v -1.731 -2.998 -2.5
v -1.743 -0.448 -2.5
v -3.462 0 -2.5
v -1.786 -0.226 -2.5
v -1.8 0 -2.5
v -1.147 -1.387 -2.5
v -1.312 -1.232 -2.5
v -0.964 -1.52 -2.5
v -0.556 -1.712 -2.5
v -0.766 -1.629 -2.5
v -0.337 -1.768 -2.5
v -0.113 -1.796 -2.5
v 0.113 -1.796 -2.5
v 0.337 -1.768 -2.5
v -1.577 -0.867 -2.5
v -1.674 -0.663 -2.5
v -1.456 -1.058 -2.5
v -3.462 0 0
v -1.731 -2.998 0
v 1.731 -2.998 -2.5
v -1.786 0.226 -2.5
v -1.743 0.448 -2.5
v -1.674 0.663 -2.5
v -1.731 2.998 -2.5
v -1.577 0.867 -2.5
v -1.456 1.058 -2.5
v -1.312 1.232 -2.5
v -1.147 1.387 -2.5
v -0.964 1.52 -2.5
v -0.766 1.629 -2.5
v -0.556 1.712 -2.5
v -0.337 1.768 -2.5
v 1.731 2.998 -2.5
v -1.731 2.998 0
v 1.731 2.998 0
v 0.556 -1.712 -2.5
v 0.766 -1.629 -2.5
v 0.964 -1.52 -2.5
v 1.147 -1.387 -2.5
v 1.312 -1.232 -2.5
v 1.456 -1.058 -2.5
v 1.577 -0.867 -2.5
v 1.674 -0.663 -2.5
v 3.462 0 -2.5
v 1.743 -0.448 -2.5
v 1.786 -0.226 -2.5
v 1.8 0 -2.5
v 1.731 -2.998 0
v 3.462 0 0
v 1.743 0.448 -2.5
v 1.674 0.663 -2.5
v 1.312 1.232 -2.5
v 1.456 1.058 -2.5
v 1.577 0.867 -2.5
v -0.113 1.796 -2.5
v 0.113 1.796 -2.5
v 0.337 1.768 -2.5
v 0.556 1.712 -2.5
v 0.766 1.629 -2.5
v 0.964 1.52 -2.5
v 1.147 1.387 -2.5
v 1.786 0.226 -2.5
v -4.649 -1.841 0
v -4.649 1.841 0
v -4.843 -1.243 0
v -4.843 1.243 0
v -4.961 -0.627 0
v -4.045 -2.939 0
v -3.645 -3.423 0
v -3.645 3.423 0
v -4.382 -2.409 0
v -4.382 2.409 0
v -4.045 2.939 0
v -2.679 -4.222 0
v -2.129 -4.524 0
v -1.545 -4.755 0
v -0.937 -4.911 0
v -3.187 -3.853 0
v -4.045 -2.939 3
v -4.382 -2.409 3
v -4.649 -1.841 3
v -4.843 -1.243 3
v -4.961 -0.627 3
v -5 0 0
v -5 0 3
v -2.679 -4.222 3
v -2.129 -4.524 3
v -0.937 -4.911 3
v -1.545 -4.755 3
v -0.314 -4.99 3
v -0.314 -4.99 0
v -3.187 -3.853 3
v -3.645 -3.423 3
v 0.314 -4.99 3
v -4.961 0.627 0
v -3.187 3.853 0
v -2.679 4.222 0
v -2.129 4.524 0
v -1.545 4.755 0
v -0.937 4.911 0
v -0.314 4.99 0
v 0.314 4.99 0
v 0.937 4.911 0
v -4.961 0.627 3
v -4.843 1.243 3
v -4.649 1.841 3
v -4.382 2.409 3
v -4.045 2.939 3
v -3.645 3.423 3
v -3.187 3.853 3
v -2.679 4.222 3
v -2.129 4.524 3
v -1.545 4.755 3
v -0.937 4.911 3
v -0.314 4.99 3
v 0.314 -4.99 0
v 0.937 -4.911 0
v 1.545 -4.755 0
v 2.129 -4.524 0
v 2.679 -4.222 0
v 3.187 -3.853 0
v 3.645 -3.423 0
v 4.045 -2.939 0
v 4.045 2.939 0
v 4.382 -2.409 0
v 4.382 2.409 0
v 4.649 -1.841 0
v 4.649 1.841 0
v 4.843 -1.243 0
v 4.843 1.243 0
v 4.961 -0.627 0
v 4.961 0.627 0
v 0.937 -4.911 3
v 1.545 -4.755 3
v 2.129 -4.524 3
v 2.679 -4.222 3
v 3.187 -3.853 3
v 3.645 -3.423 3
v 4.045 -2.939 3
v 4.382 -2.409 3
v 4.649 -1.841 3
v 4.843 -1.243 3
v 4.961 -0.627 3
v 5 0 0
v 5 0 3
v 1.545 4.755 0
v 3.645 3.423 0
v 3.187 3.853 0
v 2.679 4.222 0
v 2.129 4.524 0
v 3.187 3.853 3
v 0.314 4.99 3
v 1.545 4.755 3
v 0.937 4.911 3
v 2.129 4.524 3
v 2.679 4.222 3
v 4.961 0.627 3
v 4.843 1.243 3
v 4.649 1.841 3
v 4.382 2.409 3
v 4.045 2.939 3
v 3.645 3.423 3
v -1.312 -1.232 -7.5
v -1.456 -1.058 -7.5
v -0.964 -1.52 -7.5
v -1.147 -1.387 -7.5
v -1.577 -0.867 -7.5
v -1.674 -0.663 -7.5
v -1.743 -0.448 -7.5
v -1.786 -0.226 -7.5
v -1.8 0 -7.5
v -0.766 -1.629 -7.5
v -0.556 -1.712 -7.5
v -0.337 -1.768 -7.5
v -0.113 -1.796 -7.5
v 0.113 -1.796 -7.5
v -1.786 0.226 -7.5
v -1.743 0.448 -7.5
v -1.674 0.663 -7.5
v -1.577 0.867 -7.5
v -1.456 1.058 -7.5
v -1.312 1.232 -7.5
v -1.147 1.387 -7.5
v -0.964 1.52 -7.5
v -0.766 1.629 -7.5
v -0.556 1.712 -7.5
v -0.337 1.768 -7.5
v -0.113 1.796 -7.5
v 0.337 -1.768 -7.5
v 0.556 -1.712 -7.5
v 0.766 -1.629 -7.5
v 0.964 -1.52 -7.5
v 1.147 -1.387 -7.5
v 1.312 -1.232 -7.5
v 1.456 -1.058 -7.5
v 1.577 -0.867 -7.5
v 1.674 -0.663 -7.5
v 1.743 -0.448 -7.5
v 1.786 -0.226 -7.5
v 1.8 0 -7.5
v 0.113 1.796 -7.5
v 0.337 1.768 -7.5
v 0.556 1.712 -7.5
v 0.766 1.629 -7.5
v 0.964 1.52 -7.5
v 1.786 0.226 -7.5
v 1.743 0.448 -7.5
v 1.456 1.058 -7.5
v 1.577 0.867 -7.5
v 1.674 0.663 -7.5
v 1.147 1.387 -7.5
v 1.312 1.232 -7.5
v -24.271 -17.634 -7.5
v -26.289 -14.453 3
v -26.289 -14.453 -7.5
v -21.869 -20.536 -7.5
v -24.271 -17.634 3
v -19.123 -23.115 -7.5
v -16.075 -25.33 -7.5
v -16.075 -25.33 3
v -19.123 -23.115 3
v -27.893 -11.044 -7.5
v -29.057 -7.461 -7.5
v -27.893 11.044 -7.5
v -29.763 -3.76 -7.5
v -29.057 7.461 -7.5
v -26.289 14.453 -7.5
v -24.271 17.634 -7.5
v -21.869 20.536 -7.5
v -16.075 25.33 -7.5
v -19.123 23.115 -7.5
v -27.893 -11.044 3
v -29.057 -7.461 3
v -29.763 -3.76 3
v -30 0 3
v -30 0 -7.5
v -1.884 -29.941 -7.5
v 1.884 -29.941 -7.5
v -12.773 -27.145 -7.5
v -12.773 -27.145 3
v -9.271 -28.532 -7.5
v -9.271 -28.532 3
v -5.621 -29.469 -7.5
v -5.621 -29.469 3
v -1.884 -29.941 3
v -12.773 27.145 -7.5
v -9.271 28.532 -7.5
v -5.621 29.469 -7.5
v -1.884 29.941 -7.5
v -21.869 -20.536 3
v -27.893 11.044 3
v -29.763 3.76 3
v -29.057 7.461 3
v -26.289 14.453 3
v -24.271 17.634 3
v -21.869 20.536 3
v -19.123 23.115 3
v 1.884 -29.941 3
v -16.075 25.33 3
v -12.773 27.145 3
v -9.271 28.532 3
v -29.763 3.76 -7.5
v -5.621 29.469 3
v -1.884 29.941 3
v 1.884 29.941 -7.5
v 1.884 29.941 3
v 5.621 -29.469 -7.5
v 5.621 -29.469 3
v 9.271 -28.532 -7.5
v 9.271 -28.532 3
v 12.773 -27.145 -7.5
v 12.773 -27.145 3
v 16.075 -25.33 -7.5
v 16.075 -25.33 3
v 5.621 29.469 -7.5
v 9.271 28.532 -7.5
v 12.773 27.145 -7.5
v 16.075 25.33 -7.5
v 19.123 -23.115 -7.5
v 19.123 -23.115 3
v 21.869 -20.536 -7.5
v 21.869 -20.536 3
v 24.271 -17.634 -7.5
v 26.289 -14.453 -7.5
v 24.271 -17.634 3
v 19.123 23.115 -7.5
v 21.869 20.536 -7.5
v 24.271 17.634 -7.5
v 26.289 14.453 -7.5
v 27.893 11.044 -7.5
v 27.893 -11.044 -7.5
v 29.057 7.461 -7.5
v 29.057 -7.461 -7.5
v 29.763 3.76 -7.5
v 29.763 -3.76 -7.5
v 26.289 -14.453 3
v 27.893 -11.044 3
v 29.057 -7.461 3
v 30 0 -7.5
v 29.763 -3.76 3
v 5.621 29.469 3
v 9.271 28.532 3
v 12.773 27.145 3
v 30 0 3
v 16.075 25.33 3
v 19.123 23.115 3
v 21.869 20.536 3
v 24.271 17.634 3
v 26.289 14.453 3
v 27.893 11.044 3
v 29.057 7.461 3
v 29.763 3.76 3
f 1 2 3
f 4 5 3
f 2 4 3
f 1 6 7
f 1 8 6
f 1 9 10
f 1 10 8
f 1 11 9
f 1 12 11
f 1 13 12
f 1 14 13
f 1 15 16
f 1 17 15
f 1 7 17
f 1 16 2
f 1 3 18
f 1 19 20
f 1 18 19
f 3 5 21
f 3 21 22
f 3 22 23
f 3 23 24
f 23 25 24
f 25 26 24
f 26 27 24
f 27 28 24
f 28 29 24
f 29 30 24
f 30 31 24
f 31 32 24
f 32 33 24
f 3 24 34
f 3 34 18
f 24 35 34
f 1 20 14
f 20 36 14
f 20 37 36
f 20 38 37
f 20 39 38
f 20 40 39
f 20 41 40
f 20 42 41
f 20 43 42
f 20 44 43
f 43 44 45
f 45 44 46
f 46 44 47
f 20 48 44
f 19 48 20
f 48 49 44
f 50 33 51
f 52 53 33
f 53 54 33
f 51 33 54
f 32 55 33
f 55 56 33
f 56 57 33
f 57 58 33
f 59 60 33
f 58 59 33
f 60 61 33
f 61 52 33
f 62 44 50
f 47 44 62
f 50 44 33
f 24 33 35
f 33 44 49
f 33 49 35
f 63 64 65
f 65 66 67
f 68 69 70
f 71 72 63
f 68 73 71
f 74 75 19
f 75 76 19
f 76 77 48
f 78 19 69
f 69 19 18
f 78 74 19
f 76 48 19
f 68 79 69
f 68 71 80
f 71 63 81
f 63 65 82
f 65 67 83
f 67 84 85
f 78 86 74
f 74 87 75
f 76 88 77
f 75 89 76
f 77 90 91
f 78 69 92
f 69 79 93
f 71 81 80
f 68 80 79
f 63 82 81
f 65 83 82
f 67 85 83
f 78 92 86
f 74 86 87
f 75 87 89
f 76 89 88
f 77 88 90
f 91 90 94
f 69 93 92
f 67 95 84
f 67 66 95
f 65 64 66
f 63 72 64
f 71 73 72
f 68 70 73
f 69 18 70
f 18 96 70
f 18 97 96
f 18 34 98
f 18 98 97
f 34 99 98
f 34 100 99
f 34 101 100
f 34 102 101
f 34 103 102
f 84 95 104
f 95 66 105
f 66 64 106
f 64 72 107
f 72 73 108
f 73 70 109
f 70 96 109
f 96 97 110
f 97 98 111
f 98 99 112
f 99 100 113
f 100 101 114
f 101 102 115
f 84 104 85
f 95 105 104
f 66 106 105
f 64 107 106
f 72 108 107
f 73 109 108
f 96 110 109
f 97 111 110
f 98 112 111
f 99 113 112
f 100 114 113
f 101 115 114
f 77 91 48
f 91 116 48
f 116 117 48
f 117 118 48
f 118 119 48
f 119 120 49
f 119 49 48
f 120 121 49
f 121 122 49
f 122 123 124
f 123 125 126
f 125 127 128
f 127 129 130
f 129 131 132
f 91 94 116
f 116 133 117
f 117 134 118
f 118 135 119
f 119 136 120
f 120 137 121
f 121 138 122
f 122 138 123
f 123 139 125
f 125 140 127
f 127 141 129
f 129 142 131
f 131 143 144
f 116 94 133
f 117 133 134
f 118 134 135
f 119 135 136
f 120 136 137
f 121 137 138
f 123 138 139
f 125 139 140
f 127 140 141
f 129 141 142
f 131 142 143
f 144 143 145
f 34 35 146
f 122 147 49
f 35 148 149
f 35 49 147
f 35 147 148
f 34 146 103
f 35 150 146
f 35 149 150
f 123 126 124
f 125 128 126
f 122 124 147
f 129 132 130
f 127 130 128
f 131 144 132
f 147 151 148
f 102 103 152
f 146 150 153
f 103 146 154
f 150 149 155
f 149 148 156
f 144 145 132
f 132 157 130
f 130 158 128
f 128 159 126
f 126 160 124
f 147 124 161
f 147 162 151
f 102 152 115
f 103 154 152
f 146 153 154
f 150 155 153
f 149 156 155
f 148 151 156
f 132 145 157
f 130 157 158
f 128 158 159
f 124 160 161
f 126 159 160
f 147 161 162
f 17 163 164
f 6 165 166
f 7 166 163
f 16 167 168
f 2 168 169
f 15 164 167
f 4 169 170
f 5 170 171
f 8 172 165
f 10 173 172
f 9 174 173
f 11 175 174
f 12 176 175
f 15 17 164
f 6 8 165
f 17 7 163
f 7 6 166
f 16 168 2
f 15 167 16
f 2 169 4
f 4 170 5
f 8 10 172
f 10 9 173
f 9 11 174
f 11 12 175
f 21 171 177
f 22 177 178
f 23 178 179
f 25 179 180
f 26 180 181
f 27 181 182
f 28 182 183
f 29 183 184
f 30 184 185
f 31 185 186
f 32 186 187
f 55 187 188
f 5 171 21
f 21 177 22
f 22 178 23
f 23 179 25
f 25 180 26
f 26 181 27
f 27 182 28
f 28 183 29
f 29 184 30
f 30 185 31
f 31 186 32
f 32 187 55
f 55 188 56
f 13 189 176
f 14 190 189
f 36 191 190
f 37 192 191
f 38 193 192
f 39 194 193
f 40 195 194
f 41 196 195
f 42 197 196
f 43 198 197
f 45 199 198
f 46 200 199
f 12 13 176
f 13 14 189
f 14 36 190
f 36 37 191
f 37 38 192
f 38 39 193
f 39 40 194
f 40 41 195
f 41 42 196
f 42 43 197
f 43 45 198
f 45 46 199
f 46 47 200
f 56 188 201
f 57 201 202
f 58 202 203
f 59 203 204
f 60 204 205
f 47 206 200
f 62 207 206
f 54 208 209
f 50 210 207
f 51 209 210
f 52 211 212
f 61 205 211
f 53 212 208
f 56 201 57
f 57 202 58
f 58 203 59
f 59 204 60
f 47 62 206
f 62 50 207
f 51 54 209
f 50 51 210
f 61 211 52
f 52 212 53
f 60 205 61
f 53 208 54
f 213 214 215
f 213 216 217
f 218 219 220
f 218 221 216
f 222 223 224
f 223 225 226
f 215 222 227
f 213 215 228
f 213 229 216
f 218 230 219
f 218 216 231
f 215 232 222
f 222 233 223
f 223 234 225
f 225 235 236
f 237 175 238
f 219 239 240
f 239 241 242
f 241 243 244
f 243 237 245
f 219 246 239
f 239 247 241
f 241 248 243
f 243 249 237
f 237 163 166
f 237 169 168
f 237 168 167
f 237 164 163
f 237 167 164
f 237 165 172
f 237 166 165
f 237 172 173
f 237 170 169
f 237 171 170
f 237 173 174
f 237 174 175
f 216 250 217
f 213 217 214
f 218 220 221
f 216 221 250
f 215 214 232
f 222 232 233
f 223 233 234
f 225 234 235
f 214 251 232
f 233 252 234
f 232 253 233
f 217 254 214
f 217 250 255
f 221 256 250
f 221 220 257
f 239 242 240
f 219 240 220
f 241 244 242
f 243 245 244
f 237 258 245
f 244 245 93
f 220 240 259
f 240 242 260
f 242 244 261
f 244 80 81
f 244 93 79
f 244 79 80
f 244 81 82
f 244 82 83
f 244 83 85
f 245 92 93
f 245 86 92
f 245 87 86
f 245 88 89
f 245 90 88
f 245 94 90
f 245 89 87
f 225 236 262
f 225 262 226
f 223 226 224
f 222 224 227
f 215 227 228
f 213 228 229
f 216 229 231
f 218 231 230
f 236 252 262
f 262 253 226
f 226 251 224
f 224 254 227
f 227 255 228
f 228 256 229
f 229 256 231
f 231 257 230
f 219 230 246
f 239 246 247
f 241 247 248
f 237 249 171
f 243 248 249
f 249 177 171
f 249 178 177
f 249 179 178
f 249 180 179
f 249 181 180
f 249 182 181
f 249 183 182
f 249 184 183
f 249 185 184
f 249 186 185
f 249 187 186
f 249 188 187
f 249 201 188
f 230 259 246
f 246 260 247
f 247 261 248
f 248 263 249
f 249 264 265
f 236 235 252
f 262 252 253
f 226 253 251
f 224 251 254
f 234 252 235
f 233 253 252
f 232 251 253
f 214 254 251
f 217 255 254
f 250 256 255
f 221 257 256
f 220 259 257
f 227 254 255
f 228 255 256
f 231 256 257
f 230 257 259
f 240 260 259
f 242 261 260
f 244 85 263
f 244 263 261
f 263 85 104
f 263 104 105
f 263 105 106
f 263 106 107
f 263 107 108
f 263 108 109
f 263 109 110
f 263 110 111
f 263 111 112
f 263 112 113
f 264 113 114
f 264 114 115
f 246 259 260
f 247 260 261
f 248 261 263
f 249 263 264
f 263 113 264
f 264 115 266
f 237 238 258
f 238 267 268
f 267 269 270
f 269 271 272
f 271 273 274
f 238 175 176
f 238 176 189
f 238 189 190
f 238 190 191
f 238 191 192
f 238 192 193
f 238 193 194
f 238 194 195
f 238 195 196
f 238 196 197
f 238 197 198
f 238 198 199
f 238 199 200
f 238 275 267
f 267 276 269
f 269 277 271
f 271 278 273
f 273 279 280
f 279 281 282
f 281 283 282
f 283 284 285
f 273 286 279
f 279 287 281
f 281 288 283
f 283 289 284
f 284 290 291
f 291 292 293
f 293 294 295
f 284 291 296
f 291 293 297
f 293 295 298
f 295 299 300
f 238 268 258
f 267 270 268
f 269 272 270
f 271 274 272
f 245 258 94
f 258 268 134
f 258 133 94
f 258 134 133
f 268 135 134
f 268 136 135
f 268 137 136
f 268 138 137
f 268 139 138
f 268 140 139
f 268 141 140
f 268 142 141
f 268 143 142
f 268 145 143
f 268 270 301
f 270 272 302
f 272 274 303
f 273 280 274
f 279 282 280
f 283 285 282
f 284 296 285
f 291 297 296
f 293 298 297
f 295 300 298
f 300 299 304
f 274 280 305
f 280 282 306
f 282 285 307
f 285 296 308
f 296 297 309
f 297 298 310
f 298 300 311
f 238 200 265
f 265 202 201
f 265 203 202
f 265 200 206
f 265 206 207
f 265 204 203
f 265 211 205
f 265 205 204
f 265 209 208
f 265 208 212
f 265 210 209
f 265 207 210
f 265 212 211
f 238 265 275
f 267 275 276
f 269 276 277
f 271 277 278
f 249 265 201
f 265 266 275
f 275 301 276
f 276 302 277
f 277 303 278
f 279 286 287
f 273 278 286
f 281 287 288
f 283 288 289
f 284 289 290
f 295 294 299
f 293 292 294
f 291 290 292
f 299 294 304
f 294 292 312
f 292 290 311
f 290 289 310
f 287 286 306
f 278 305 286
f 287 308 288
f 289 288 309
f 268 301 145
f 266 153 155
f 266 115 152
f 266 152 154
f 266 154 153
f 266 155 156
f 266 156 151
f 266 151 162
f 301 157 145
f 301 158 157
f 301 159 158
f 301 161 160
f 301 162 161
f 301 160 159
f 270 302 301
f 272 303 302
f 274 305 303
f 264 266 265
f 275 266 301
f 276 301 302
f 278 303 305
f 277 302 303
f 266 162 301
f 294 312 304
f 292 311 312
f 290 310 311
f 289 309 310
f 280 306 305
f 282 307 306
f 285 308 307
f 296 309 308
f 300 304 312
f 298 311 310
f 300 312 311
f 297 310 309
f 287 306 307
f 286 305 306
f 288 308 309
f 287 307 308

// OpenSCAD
$fn = 50;


difference() {
	union() {
		translate(v = [0, 0, -7.5000000000]) {
			cylinder(h = 10.5000000000, r = 30.0000000000);
		}
	}
	union() {
		translate(v = [0, 0, 0]) {
			rotate(a = [0, 0, 0]) {
				difference() {
					union() {
						translate(v = [0, 0, -2.5000000000]) {
							linear_extrude(height = 2.5000000000) {
								polygon(points = [[3.4620000000, 0.0000000000], [1.7310000000, 2.9981799479], [-1.7310000000, 2.9981799479], [-3.4620000000, 0.0000000000], [-1.7310000000, -2.9981799479], [1.7310000000, -2.9981799479]]);
							}
						}
					}
					union();
				}
			}
		}
		#cylinder(h = 3, r = 5.0000000000);
		#translate(v = [0, 0, -100.0000000000]) {
			cylinder(h = 200, r = 1.8000000000);
		}
	}
}
